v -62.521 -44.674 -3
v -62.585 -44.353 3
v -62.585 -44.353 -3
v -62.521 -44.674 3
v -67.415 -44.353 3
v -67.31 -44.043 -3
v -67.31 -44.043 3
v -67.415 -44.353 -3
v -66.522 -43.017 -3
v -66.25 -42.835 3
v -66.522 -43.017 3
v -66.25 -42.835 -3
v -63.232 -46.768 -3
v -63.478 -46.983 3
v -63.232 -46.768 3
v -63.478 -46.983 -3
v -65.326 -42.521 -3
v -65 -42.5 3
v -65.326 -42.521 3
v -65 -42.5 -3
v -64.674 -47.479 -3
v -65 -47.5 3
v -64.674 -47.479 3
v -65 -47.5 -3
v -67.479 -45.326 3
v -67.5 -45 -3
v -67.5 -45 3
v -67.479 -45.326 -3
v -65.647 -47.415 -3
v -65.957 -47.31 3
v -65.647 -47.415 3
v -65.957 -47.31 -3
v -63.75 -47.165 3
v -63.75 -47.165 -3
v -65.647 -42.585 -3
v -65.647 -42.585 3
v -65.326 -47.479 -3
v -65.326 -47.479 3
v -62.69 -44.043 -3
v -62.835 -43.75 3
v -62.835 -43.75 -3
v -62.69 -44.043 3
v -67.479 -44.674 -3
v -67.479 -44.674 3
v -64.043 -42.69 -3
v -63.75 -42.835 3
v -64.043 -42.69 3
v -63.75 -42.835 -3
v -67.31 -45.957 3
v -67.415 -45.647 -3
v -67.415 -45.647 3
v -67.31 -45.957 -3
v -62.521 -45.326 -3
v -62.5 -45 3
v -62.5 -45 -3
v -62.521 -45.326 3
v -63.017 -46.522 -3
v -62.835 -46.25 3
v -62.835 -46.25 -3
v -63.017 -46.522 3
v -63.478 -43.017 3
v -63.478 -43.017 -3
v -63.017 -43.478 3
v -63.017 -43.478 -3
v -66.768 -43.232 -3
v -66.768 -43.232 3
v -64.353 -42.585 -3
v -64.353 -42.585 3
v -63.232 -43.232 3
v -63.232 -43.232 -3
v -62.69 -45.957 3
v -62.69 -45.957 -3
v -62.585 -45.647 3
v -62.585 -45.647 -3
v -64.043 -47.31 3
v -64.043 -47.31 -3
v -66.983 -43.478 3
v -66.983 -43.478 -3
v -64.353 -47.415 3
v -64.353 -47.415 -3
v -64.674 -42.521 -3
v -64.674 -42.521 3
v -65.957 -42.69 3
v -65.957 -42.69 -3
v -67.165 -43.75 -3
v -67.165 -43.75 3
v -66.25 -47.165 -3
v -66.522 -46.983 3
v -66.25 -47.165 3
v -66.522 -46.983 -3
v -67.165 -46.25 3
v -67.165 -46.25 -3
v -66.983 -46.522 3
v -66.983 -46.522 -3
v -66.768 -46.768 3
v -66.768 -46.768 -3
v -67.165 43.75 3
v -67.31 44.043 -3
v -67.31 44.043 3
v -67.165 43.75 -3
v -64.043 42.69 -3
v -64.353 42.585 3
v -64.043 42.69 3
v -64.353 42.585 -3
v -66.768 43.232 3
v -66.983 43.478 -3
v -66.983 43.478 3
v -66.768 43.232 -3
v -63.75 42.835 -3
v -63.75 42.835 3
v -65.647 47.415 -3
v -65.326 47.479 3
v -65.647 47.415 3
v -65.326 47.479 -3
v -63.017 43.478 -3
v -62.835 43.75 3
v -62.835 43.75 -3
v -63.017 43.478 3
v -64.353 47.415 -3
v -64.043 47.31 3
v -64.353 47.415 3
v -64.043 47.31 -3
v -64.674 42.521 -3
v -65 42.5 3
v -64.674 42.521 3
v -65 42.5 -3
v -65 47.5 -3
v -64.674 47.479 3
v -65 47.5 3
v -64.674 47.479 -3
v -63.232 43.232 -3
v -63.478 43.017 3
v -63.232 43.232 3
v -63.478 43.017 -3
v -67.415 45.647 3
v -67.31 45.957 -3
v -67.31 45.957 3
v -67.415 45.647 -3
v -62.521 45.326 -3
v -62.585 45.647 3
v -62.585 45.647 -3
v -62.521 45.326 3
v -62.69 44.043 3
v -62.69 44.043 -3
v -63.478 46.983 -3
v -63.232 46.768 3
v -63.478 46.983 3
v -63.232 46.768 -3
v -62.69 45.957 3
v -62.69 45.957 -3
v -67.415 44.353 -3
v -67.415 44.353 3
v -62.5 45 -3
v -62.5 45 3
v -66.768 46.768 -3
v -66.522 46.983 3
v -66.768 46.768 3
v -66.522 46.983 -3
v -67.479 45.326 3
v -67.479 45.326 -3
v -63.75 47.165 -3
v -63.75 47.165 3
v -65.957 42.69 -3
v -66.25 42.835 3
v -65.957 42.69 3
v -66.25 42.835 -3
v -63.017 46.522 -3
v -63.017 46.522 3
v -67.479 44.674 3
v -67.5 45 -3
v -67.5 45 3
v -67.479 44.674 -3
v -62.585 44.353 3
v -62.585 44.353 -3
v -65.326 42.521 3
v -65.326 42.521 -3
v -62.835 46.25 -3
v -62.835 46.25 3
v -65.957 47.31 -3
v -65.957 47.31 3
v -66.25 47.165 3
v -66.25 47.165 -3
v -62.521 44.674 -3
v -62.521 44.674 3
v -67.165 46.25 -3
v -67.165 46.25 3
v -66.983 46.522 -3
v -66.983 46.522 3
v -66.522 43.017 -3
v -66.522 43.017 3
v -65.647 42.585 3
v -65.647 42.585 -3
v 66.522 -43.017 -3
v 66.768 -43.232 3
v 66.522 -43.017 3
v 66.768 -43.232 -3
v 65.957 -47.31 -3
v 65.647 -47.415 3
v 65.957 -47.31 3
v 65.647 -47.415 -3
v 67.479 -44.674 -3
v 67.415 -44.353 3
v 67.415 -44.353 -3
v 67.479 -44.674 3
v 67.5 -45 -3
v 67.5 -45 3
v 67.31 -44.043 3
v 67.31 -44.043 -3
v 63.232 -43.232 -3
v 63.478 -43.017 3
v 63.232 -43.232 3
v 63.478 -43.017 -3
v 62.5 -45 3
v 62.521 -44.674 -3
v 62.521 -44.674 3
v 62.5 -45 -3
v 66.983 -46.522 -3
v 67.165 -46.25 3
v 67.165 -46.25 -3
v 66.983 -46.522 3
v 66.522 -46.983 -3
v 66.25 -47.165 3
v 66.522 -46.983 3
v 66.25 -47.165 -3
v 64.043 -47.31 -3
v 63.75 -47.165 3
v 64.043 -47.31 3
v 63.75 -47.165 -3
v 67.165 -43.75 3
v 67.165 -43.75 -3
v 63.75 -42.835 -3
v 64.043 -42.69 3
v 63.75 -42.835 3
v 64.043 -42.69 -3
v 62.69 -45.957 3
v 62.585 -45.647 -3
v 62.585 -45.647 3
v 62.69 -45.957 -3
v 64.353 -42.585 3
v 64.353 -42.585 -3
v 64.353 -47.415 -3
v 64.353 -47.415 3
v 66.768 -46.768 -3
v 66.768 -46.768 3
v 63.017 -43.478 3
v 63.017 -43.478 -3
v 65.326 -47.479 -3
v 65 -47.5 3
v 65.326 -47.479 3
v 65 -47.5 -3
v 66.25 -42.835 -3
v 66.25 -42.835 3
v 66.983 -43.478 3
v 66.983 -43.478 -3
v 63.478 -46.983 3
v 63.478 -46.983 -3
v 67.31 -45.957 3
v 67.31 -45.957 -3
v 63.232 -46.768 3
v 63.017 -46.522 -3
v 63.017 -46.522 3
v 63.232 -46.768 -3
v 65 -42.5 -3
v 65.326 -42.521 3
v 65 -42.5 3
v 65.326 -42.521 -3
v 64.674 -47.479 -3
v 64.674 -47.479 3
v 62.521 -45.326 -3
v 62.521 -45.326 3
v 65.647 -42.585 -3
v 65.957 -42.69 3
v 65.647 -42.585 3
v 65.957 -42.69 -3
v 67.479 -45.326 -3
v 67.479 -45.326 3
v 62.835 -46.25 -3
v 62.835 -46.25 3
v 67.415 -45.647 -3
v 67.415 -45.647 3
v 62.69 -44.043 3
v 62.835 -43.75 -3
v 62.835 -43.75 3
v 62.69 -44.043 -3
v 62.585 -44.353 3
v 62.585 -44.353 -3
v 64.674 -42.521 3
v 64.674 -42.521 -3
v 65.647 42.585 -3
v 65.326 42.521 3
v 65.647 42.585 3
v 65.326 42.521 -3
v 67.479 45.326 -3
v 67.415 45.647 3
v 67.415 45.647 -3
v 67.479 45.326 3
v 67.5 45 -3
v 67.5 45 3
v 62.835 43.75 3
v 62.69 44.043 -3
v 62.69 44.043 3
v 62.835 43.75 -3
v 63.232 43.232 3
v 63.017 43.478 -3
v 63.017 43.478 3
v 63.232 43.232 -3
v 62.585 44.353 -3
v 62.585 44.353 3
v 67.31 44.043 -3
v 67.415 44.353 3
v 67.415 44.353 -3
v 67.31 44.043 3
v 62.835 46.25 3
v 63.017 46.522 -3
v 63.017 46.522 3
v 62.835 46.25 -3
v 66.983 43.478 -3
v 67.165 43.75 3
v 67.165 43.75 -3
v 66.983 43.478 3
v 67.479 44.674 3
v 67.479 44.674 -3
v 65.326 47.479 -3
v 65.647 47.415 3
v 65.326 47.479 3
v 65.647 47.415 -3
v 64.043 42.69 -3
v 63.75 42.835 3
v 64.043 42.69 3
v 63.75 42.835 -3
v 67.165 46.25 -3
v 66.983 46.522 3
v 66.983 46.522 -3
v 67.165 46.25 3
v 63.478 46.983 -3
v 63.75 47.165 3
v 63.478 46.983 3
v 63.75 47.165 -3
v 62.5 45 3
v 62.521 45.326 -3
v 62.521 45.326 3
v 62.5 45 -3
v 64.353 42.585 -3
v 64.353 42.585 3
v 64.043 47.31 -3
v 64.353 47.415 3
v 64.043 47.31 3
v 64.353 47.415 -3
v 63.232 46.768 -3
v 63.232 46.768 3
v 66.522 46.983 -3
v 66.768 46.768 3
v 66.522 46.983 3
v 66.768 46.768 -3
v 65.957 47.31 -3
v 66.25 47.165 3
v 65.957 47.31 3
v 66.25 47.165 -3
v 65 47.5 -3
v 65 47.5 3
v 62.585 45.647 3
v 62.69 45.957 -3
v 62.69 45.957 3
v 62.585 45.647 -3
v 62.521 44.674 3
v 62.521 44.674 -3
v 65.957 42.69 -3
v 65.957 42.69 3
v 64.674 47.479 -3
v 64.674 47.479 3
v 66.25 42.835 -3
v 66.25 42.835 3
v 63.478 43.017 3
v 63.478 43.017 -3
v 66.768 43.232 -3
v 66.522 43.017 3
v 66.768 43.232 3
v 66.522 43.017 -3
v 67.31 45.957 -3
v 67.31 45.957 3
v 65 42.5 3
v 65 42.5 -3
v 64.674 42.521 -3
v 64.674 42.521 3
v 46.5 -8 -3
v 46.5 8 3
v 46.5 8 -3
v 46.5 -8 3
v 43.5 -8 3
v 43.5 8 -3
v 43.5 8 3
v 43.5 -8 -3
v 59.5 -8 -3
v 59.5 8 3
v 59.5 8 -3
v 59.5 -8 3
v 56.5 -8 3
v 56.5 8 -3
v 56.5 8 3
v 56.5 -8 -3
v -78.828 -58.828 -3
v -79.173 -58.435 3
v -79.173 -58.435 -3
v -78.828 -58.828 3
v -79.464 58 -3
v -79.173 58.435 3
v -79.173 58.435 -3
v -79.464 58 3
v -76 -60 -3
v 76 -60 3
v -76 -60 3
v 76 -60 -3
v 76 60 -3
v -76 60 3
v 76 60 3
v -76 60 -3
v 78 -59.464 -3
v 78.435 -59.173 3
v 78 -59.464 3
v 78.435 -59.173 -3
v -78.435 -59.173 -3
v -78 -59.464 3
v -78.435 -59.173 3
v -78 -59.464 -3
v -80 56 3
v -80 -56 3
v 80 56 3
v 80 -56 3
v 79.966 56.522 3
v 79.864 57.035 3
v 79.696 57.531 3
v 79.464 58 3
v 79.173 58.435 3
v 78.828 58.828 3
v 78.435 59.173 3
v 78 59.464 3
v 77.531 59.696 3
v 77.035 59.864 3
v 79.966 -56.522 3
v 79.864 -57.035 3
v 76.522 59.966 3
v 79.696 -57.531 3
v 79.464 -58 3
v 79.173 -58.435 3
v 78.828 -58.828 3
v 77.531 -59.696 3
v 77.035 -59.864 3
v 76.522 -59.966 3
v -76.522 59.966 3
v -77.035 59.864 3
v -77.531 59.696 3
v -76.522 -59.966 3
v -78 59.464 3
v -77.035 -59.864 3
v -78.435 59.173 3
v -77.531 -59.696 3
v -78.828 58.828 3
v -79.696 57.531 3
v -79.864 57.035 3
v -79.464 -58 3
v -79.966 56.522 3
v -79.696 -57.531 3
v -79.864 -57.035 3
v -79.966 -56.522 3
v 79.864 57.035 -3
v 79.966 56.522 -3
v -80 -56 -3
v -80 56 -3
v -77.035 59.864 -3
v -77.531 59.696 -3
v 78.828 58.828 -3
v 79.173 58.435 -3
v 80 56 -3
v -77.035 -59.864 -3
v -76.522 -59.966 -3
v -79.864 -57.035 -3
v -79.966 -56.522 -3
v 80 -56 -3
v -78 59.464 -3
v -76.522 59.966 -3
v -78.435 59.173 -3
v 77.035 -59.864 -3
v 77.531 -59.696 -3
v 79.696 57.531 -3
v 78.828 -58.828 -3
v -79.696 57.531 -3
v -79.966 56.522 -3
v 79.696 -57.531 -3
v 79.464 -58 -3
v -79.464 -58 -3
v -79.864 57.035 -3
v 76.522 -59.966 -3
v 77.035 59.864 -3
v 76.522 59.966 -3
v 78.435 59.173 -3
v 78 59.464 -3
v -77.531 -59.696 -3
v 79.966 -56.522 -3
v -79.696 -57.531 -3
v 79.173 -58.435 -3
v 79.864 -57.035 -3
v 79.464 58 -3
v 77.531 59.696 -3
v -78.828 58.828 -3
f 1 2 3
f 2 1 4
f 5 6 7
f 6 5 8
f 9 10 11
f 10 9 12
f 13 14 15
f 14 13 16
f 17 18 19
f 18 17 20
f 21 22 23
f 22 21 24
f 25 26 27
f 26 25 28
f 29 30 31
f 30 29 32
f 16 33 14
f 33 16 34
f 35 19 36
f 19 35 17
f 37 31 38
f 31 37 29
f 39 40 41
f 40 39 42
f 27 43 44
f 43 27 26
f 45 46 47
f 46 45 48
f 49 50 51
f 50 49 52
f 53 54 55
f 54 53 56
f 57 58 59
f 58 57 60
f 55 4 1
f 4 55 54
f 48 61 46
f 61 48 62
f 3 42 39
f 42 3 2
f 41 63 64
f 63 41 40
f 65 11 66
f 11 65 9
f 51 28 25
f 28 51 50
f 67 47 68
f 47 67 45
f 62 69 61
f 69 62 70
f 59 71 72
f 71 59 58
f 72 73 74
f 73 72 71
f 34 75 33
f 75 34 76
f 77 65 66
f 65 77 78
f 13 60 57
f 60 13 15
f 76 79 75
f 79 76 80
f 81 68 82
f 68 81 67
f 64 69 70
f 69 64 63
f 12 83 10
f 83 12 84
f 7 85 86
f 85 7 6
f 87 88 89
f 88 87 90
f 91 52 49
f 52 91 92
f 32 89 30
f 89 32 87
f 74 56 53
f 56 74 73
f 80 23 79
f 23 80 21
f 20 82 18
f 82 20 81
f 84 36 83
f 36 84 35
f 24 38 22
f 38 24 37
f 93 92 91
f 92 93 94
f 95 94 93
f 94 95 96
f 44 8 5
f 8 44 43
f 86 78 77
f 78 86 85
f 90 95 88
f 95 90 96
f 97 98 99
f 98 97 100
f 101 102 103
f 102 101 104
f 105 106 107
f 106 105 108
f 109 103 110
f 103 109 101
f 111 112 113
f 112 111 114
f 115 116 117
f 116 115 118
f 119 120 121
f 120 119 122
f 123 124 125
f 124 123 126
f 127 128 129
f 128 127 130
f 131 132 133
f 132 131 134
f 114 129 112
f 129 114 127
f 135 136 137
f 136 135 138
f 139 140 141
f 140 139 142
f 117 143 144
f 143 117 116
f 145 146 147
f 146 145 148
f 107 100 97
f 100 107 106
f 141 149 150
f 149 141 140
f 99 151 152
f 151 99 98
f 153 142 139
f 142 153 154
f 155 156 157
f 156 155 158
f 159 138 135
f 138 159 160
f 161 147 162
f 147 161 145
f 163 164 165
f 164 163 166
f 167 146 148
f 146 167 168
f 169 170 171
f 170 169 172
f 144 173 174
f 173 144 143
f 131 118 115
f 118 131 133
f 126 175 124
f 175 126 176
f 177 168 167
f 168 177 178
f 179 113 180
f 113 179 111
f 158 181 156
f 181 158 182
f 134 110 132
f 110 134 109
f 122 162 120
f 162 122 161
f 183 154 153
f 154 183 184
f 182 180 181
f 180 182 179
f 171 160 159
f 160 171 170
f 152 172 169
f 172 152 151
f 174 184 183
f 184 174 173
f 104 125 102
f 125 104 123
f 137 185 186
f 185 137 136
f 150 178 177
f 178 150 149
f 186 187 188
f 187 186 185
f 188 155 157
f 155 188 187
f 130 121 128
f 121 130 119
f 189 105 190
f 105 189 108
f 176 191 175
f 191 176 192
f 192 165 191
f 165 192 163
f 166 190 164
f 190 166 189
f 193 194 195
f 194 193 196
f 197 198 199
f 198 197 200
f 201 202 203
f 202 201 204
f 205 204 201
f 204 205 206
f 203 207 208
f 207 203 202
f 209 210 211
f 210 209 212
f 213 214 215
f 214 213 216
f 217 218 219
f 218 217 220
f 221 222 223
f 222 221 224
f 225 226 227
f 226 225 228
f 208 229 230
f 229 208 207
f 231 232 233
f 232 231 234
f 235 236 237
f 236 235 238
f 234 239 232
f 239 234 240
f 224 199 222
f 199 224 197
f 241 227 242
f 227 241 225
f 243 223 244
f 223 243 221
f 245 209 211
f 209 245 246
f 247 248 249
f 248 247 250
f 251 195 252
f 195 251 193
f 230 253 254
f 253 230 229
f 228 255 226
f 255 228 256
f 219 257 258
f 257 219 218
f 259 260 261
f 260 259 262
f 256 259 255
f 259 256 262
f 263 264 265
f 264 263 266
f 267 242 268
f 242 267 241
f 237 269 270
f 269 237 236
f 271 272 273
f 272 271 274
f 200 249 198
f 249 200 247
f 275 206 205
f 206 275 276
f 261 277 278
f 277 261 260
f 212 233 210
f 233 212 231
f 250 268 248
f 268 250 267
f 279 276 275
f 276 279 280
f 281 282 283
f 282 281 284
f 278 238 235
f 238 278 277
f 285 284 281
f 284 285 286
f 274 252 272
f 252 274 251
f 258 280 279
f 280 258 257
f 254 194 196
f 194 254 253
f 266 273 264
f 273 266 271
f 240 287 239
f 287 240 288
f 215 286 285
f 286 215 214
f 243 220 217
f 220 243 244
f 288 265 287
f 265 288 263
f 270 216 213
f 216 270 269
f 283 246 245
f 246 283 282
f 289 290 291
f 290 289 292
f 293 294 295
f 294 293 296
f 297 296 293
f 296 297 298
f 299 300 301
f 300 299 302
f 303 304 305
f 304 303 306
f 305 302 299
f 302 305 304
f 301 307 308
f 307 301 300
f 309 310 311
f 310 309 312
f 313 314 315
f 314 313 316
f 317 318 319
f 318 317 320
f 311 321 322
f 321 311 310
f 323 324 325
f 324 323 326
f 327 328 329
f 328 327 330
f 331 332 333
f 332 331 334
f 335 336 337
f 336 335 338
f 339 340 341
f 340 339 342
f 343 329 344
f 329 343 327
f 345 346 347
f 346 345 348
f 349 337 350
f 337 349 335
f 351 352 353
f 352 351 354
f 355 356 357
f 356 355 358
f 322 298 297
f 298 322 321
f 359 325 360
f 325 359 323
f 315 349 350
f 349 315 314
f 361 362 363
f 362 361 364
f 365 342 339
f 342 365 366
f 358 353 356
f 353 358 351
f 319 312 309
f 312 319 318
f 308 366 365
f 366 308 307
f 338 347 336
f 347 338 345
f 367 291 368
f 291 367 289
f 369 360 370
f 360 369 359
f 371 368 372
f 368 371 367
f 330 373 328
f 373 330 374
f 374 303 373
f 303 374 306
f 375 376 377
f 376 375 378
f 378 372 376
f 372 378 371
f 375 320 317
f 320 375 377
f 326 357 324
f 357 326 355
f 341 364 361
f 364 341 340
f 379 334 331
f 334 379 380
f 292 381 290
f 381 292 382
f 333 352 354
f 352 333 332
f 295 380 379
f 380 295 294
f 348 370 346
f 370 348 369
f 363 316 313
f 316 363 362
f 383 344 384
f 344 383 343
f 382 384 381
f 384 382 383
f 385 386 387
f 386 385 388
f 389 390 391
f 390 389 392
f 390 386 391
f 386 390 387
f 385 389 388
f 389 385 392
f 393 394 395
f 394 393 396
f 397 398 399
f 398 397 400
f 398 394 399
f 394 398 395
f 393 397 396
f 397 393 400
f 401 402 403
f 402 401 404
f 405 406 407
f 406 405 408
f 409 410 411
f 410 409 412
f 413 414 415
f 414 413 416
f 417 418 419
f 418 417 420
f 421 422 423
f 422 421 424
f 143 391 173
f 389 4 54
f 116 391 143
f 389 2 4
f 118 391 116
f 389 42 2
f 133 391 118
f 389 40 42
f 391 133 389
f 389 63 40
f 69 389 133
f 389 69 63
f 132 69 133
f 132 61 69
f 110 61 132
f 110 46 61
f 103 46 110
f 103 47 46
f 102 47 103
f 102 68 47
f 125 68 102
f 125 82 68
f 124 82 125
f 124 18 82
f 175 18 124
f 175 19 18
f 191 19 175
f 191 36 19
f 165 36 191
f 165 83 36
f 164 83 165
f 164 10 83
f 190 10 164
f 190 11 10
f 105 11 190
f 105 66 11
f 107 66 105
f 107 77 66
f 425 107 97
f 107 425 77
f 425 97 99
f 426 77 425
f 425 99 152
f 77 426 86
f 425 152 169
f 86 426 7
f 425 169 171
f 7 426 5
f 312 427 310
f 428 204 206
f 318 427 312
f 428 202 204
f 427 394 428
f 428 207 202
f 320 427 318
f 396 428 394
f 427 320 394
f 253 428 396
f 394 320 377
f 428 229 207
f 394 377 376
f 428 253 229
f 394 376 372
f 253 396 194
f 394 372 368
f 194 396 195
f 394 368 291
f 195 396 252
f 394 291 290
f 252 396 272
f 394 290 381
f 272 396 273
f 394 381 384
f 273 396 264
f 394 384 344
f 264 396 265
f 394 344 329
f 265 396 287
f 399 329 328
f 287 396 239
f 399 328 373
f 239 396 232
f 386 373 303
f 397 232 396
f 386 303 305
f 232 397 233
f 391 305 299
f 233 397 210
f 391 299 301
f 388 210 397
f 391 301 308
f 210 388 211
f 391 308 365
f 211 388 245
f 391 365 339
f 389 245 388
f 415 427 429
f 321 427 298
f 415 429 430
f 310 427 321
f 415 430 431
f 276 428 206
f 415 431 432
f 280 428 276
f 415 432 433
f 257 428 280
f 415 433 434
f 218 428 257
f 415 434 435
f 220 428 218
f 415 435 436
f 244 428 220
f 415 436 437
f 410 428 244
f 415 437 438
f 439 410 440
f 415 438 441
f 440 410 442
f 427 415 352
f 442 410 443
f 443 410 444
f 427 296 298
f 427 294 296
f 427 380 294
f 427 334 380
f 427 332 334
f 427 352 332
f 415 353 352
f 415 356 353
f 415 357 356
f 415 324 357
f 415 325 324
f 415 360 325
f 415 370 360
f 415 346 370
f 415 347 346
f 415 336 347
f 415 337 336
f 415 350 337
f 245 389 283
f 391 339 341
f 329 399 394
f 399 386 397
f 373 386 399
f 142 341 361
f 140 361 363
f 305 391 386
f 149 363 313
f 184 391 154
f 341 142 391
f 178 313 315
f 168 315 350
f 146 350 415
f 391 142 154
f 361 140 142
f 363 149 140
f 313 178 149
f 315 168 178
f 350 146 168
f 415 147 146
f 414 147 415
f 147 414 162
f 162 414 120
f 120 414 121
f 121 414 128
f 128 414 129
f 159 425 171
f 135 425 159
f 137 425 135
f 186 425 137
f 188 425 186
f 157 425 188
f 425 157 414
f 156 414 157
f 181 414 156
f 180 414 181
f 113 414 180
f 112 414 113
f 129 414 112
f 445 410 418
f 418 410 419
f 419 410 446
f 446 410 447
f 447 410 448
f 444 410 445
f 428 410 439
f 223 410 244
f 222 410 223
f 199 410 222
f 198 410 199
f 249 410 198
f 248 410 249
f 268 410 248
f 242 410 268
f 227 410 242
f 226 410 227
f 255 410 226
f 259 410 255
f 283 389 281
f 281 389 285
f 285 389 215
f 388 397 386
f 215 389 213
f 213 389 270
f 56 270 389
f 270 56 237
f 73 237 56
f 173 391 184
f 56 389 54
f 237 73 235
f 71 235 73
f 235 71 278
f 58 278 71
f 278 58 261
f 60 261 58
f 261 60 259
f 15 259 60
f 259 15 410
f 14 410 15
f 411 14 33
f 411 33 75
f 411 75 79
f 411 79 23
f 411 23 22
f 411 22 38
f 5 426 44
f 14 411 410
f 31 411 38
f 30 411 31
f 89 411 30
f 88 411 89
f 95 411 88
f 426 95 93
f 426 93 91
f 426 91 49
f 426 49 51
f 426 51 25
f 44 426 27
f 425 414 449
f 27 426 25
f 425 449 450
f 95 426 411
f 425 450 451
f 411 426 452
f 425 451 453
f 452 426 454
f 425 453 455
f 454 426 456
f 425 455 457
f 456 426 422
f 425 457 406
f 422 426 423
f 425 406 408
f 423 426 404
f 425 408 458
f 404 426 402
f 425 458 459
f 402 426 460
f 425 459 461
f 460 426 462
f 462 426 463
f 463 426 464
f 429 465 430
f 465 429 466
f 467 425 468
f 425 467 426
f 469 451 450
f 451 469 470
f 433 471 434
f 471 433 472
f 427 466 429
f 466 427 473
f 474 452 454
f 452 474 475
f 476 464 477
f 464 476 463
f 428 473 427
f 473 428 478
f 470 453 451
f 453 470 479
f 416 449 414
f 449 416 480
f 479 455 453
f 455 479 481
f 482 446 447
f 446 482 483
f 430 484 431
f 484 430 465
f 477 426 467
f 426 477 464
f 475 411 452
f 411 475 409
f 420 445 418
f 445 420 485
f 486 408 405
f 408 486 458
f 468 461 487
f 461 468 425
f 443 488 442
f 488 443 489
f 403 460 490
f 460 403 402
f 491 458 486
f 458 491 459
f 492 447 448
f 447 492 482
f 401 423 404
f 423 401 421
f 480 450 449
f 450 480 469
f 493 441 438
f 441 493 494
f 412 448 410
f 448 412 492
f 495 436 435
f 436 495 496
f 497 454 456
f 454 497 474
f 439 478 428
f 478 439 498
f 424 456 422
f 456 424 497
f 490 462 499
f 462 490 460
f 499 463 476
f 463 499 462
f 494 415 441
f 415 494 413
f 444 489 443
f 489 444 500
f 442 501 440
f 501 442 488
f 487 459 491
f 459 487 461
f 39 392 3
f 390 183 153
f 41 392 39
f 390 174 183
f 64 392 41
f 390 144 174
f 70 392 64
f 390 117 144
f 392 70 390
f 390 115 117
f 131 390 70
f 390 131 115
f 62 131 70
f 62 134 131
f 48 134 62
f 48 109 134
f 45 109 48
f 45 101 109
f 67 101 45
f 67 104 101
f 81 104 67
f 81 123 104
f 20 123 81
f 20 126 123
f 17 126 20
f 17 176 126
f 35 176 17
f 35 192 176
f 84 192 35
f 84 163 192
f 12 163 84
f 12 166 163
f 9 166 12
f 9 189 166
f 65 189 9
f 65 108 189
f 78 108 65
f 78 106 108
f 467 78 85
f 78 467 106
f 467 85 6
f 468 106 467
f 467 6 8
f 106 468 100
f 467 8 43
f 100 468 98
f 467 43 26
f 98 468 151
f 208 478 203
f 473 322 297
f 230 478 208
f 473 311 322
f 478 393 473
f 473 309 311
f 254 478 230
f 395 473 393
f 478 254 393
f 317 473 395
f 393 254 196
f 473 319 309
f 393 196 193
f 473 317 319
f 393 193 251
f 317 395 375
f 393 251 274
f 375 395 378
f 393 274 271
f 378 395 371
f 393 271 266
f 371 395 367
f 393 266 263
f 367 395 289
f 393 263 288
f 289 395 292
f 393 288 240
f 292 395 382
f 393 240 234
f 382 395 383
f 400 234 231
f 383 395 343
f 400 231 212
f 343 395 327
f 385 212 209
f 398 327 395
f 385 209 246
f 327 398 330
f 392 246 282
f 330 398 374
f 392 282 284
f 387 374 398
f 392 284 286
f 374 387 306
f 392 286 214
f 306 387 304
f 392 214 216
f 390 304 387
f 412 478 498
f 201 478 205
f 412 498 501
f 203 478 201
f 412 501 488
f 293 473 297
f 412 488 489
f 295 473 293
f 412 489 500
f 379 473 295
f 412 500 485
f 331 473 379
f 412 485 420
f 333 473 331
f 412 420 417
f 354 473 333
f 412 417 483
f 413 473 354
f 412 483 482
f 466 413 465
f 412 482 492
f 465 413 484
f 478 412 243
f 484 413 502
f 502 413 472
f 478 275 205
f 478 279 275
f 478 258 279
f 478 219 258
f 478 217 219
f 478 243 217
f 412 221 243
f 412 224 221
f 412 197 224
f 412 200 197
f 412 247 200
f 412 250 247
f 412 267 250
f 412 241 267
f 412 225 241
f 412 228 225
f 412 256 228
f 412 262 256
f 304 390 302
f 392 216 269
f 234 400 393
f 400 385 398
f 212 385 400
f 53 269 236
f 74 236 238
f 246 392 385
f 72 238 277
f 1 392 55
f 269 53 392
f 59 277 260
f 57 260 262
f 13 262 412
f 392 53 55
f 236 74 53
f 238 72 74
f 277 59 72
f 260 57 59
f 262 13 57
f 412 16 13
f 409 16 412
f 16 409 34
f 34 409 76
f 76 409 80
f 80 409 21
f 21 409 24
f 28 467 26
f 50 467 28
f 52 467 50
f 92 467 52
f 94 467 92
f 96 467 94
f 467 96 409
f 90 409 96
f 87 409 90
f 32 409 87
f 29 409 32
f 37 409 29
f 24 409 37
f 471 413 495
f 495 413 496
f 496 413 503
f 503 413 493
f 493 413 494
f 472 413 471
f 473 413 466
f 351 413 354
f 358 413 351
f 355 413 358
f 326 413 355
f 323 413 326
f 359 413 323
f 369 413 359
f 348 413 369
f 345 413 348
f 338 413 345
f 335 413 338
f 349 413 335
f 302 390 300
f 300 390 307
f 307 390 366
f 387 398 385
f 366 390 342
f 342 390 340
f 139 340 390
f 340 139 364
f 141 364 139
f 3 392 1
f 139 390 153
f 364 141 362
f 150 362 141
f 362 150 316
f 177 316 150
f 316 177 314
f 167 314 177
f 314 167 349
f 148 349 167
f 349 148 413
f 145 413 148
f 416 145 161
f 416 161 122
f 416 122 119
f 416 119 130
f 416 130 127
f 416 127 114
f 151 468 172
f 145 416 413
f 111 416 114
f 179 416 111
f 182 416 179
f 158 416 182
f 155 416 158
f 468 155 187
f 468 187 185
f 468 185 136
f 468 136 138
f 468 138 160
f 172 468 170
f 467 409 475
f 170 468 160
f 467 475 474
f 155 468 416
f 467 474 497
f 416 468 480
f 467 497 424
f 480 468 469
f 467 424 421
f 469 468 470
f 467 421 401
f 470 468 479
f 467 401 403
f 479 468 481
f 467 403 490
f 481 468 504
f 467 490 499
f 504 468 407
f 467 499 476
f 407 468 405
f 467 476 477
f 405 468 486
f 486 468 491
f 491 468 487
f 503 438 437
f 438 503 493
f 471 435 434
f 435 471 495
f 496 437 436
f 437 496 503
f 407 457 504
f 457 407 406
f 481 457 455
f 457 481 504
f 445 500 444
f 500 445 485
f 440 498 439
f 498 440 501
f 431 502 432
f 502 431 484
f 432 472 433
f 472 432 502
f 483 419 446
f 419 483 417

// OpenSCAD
// file: common.scad
// Shared Rev A CAD parameters and helper modules.
// Units: millimeters.

$fn = 48;

// Hitec HS-625MG vendor baseline. Verify with calipers before final print.
servo_l = 40.6;
servo_w = 19.8;
servo_h = 37.8;
spline_d = 6.0;
spline_h = 5.0;
servo_mount_slot_l = 9.0;
servo_mount_slot_w = 3.4;
servo_mount_span_x = 49.5;
servo_mount_span_y = 27.5;

// Rev A structure.
base_l = 160;
base_w = 120;
base_t = 6;
wall_t = 6;
mount_t = 5;
outer_w = 95;
outer_h = 95;
outer_depth = 16;
inner_w = 55;
inner_h = 72;
nozzle_l = 85;
nozzle_d = 24;
imu_l = 28;
imu_w = 22;
bearing_d = 8.0;
shaft_d = 4.0;

// Manufacturing assumptions.
m3_clearance_d = 3.4;
bench_fastener_d = 5.0;
fillet_r = 3.0;

module rounded_plate(size_xyz, r=3) {
    hull() {
        for (x=[-size_xyz[0]/2+r, size_xyz[0]/2-r])
            for (y=[-size_xyz[1]/2+r, size_xyz[1]/2-r])
                translate([x, y, 0])
                    cylinder(h=size_xyz[2], r=r, center=true);
    }
}

module slotted_hole(slot_l, slot_w, h=2) {
    hull() {
        translate([-slot_l/2 + slot_w/2, 0, 0])
            cylinder(h=h, d=slot_w, center=true);
        translate([slot_l/2 - slot_w/2, 0, 0])
            cylinder(h=h, d=slot_w, center=true);
    }
}

module servo_mount_plate() {
    difference() {
        rounded_plate([servo_mount_span_x + 18, servo_mount_span_y + 16, mount_t], 2);

        for (x=[-servo_mount_span_x/2, servo_mount_span_x/2])
            for (y=[-servo_mount_span_y/2, servo_mount_span_y/2])
                translate([x, y, 0])
                    slotted_hole(servo_mount_slot_l, servo_mount_slot_w, mount_t + 1);
    }
}

module servo_body_clearance(extra=1.0) {
    cube([servo_l + extra, servo_w + extra, servo_h + extra], center=true);
}

module shaft_clearance(h=120) {
    rotate([90, 0, 0])
        cylinder(h=h, d=shaft_d + 0.6, center=true);
}

module imu_pad() {
    difference() {
        rounded_plate([imu_l + 8, imu_w + 8, 3], 2);
        for (x=[-(imu_l/2 - 4), imu_l/2 - 4])
            for (y=[-(imu_w/2 - 4), imu_w/2 - 4])
                translate([x, y, 0])
                    cylinder(h=4, d=2.2, center=true);
    }
}
// main file
include <common.scad>

// Rev A base plate.
// Print flat on the bed.

difference() {
    rounded_plate([base_l, base_w, base_t], 4);

    // Bench clamp/fastener holes.
    for (x=[-base_l/2 + 15, base_l/2 - 15])
        for (y=[-base_w/2 + 15, base_w/2 - 15])
            translate([x, y, 0])
                cylinder(h=base_t + 1, d=bench_fastener_d, center=true);

    // Optional cable-tie holes for wire strain relief.
    for (x=[base_l/2 - 35, base_l/2 - 22])
        translate([x, 0, 0])
            cube([3, 16, base_t + 1], center=true);
}
